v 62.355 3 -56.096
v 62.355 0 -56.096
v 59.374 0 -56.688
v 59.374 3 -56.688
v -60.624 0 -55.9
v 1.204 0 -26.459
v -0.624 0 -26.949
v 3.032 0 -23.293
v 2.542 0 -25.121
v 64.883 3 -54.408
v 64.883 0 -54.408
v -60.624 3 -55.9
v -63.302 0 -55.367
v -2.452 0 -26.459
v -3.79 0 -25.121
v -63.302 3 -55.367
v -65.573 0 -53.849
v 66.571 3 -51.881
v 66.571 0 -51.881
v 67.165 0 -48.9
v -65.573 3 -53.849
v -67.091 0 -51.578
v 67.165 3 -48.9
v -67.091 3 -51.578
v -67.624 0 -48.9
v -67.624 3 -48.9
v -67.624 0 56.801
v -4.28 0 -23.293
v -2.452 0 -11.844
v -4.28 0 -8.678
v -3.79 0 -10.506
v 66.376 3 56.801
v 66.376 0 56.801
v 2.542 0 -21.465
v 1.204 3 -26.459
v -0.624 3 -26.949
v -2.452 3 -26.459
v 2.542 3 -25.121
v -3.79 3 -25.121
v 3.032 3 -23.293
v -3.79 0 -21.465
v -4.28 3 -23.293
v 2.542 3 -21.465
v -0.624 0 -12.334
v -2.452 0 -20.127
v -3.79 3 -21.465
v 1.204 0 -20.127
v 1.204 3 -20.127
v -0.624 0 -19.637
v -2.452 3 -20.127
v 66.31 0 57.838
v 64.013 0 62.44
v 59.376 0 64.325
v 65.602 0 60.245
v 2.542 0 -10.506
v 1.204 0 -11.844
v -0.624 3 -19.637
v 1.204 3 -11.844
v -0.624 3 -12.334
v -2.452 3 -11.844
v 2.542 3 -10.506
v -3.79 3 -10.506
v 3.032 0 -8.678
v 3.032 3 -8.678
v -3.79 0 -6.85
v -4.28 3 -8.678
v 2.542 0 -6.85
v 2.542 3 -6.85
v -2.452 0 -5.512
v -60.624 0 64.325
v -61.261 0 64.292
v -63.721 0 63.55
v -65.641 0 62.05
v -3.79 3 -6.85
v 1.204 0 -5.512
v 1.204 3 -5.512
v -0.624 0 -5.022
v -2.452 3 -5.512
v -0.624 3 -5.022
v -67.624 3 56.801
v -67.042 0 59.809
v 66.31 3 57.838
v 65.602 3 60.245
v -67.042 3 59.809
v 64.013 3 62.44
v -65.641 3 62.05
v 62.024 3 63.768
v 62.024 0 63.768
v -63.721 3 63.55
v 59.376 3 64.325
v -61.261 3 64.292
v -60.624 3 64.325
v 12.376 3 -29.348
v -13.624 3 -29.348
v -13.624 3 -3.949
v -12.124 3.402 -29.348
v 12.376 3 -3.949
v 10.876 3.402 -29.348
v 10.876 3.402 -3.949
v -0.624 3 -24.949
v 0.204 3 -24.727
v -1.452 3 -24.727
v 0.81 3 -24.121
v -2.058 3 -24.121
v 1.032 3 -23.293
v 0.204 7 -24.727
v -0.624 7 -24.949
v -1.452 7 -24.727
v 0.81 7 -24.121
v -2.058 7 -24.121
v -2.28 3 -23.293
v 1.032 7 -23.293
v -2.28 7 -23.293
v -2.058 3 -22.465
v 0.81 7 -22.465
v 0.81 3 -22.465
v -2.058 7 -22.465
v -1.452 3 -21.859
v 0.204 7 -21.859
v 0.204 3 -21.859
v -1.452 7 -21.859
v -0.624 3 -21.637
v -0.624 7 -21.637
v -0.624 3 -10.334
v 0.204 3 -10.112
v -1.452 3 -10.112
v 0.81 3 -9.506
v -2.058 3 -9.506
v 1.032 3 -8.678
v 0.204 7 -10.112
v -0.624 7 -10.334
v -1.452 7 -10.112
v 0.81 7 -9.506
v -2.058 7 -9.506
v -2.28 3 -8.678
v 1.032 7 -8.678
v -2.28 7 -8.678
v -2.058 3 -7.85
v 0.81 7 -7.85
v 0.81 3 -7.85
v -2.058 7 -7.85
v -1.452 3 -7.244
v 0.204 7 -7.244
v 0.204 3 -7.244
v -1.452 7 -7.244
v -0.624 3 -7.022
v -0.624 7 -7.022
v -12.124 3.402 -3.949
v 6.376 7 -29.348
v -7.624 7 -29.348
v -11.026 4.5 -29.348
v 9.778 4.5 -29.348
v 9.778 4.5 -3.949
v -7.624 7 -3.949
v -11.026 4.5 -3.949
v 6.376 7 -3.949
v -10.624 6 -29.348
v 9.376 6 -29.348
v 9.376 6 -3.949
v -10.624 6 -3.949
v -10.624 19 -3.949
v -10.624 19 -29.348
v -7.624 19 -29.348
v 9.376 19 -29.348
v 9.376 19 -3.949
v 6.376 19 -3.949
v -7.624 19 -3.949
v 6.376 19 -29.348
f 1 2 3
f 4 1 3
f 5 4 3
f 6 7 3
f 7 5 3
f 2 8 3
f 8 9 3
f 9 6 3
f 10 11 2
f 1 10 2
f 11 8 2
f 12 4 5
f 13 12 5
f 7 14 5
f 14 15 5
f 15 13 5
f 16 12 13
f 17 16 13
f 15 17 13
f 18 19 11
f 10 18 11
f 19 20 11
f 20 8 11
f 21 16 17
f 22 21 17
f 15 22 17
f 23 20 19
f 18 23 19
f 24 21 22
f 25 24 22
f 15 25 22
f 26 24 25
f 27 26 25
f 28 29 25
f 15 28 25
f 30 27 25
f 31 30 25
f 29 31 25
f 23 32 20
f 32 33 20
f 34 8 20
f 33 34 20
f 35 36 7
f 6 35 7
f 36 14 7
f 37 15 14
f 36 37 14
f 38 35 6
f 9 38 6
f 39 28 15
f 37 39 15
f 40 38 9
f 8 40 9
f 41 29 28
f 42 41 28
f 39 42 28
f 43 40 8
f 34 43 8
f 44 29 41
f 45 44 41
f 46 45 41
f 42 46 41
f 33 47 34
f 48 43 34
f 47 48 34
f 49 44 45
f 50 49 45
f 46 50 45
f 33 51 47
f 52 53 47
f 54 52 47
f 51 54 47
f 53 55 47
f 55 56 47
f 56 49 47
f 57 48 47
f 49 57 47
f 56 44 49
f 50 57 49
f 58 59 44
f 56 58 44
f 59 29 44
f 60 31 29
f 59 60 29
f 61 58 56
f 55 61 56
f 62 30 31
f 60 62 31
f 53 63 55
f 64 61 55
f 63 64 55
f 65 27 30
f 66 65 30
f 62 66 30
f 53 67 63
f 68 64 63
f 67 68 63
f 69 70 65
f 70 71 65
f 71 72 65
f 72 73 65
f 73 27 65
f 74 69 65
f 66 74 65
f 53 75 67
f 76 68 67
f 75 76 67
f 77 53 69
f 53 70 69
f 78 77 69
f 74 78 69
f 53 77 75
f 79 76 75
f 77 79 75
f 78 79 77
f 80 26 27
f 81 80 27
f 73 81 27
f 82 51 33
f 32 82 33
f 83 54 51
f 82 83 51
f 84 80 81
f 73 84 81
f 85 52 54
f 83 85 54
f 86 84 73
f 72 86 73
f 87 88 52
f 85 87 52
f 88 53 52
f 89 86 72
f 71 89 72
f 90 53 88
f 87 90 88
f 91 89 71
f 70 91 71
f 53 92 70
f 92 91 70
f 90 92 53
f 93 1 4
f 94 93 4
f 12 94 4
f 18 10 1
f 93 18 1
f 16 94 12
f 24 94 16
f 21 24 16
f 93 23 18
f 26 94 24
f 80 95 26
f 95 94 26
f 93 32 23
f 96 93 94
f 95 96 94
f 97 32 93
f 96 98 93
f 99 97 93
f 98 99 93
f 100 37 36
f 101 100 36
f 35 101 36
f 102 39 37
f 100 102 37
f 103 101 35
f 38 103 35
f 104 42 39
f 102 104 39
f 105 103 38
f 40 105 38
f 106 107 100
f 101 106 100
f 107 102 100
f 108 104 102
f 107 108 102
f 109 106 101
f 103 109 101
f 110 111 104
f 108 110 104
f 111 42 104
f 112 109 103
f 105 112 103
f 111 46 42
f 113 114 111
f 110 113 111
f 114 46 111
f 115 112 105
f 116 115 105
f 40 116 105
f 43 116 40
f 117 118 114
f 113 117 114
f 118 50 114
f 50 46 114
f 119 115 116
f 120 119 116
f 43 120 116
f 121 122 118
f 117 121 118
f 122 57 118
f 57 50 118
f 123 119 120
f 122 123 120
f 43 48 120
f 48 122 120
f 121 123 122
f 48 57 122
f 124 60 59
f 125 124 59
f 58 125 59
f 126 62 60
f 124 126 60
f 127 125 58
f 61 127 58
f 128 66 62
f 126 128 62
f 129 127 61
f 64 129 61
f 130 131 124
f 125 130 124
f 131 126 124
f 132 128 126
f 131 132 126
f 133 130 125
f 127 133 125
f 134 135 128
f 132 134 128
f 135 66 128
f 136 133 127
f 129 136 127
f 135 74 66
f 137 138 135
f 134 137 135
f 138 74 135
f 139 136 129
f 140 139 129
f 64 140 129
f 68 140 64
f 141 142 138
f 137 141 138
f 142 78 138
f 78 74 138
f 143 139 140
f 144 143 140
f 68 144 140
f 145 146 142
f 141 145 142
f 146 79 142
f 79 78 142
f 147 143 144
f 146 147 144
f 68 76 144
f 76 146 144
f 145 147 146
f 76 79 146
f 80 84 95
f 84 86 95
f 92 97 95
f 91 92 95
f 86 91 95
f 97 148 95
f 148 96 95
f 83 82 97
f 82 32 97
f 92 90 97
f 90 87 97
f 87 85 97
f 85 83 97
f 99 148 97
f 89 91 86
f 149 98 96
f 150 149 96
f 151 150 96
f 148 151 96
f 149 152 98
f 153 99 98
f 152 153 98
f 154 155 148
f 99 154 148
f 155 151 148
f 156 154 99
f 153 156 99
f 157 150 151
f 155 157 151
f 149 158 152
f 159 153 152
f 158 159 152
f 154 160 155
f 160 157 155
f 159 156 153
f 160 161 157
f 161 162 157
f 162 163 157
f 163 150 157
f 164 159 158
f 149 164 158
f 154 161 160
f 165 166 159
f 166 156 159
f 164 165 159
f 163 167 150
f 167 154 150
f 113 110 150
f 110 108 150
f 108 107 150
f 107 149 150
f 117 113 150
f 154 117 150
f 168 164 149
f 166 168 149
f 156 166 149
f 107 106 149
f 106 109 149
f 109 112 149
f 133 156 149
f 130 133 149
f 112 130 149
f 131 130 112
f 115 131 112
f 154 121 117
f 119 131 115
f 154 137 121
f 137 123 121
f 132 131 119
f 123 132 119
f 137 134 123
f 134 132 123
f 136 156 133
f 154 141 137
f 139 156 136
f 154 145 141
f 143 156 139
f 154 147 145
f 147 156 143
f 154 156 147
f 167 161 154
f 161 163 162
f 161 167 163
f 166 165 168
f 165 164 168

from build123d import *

# Parameters (mm, degrees)
SKETCH1_R           = 1.655864604
BOSS_EXTRUDE1_DEPTH = 3
SKETCH2_W           = 20
SKETCH2_H           = 25.399582392
SKETCH2_R           = 1.655864604
BOSS_EXTRUDE2_DEPTH = 16
SKETCH3_W           = 14
SKETCH3_H           = 30.433665038
CUT_EXTRUDE1_DEPTH  = 12
FILLET1_R           = 3
SKETCH4_R           = 3.655864604
CUT_EXTRUDE2_DEPTH  = 3


with BuildPart() as part:
    # Sketch1 → Boss-Extrude1 (new body)
    with BuildSketch(Plane(origin=(0, 0, 0), x_dir=(1, 0, 0), z_dir=(0, 1, 0))):
        with BuildLine():
            Line((-67.62365194, 48.899661457), (-67.62365194, -56.801447555))
            add(Edge.make_bspline(
                [(-67.62365194, -56.801447555), (-67.62365194, -57.576529056), (-67.408945412, -59.103174242), (-66.539947264, -61.00790182), (-65.334097821, -62.438503957), (-64.120247313, -63.394550402), (-62.546848101, -64.127219326), (-61.250619214, -64.324861548), (-60.62365194, -64.324861548)],
                knots=[0, 0, 0, 0, 0.25, 0.5, 0.625, 0.75, 0.875, 1, 1, 1, 1], degree=3))
            Line((-60.62365194, -64.324861548), (59.37634806, -64.324861548))
            add(Edge.make_bspline(
                [(59.37634806, -64.324861548), (59.996985006, -64.324861548), (61.275308456, -64.133359368), (62.856831905, -63.405567156), (64.077573394, -62.44733485), (65.282373866, -61.023465146), (66.158364103, -59.118925072), (66.37634806, -57.580964506), (66.37634806, -56.801447555)],
                knots=[0, 0, 0, 0, 0.125, 0.25, 0.375, 0.5, 0.75, 1, 1, 1, 1], degree=3))
            Line((66.37634806, -56.801447555), (67.164580452, 48.899661457))
            ThreePointArc((67.164580452, 48.899661457), (64.882544637, 54.407688605), (59.373759242, 56.687893419))
            Line((59.373759242, 56.687893419), (-60.62365194, 55.899661457))
            ThreePointArc((-60.62365194, 55.899661457), (-65.573399408, 53.849408926), (-67.62365194, 48.899661457))
        make_face()
        with Locations((-0.62365194, 23.293074001)):
            Circle(SKETCH1_R, mode=Mode.SUBTRACT)
        with Locations((-0.62365194, 8.677667421)):
            Circle(SKETCH1_R, mode=Mode.SUBTRACT)
    extrude(amount=BOSS_EXTRUDE1_DEPTH)

    # Sketch2 → Boss-Extrude2 (add)
    with BuildSketch(Plane(origin=(0, 3, 0), x_dir=(1, 0, 0), z_dir=(0, 1, 0))):
        with Locations((-0.62365194, 16.648607969)):
            Rectangle(SKETCH2_W, SKETCH2_H)
        with Locations((-0.62365194, 8.677667421)):
            Circle(SKETCH2_R, mode=Mode.SUBTRACT)
        with Locations((-0.62365194, 23.293074001)):
            Circle(SKETCH2_R, mode=Mode.SUBTRACT)
    extrude(amount=BOSS_EXTRUDE2_DEPTH)

    # Sketch3 → Cut-Extrude1 (cut)
    with BuildSketch(Plane(origin=(0, 19, 0), x_dir=(1, 0, 0), z_dir=(0, 1, 0))):
        with Locations((-0.62365194, 16.661700324)):
            Rectangle(SKETCH3_W, SKETCH3_H)
    extrude(amount=-CUT_EXTRUDE1_DEPTH, mode=Mode.SUBTRACT)

    # Fillet1
    fillet1_edges = [part.edges().sort_by_distance(p)[0] for p in [
        (-10.62365194, 3, -16.648607969),
        (9.37634806, 3, -16.648607969),
    ]]
    fillet(fillet1_edges, radius=FILLET1_R)

    # Sketch4 → Cut-Extrude2 (cut)
    with BuildSketch(Plane.XZ):
        with Locations((-0.62365194, -8.677667421)):
            Circle(SKETCH4_R)
        with Locations((-0.62365194, -23.293074001)):
            Circle(SKETCH4_R)
    extrude(amount=-CUT_EXTRUDE2_DEPTH, mode=Mode.SUBTRACT)


solid = part.part
